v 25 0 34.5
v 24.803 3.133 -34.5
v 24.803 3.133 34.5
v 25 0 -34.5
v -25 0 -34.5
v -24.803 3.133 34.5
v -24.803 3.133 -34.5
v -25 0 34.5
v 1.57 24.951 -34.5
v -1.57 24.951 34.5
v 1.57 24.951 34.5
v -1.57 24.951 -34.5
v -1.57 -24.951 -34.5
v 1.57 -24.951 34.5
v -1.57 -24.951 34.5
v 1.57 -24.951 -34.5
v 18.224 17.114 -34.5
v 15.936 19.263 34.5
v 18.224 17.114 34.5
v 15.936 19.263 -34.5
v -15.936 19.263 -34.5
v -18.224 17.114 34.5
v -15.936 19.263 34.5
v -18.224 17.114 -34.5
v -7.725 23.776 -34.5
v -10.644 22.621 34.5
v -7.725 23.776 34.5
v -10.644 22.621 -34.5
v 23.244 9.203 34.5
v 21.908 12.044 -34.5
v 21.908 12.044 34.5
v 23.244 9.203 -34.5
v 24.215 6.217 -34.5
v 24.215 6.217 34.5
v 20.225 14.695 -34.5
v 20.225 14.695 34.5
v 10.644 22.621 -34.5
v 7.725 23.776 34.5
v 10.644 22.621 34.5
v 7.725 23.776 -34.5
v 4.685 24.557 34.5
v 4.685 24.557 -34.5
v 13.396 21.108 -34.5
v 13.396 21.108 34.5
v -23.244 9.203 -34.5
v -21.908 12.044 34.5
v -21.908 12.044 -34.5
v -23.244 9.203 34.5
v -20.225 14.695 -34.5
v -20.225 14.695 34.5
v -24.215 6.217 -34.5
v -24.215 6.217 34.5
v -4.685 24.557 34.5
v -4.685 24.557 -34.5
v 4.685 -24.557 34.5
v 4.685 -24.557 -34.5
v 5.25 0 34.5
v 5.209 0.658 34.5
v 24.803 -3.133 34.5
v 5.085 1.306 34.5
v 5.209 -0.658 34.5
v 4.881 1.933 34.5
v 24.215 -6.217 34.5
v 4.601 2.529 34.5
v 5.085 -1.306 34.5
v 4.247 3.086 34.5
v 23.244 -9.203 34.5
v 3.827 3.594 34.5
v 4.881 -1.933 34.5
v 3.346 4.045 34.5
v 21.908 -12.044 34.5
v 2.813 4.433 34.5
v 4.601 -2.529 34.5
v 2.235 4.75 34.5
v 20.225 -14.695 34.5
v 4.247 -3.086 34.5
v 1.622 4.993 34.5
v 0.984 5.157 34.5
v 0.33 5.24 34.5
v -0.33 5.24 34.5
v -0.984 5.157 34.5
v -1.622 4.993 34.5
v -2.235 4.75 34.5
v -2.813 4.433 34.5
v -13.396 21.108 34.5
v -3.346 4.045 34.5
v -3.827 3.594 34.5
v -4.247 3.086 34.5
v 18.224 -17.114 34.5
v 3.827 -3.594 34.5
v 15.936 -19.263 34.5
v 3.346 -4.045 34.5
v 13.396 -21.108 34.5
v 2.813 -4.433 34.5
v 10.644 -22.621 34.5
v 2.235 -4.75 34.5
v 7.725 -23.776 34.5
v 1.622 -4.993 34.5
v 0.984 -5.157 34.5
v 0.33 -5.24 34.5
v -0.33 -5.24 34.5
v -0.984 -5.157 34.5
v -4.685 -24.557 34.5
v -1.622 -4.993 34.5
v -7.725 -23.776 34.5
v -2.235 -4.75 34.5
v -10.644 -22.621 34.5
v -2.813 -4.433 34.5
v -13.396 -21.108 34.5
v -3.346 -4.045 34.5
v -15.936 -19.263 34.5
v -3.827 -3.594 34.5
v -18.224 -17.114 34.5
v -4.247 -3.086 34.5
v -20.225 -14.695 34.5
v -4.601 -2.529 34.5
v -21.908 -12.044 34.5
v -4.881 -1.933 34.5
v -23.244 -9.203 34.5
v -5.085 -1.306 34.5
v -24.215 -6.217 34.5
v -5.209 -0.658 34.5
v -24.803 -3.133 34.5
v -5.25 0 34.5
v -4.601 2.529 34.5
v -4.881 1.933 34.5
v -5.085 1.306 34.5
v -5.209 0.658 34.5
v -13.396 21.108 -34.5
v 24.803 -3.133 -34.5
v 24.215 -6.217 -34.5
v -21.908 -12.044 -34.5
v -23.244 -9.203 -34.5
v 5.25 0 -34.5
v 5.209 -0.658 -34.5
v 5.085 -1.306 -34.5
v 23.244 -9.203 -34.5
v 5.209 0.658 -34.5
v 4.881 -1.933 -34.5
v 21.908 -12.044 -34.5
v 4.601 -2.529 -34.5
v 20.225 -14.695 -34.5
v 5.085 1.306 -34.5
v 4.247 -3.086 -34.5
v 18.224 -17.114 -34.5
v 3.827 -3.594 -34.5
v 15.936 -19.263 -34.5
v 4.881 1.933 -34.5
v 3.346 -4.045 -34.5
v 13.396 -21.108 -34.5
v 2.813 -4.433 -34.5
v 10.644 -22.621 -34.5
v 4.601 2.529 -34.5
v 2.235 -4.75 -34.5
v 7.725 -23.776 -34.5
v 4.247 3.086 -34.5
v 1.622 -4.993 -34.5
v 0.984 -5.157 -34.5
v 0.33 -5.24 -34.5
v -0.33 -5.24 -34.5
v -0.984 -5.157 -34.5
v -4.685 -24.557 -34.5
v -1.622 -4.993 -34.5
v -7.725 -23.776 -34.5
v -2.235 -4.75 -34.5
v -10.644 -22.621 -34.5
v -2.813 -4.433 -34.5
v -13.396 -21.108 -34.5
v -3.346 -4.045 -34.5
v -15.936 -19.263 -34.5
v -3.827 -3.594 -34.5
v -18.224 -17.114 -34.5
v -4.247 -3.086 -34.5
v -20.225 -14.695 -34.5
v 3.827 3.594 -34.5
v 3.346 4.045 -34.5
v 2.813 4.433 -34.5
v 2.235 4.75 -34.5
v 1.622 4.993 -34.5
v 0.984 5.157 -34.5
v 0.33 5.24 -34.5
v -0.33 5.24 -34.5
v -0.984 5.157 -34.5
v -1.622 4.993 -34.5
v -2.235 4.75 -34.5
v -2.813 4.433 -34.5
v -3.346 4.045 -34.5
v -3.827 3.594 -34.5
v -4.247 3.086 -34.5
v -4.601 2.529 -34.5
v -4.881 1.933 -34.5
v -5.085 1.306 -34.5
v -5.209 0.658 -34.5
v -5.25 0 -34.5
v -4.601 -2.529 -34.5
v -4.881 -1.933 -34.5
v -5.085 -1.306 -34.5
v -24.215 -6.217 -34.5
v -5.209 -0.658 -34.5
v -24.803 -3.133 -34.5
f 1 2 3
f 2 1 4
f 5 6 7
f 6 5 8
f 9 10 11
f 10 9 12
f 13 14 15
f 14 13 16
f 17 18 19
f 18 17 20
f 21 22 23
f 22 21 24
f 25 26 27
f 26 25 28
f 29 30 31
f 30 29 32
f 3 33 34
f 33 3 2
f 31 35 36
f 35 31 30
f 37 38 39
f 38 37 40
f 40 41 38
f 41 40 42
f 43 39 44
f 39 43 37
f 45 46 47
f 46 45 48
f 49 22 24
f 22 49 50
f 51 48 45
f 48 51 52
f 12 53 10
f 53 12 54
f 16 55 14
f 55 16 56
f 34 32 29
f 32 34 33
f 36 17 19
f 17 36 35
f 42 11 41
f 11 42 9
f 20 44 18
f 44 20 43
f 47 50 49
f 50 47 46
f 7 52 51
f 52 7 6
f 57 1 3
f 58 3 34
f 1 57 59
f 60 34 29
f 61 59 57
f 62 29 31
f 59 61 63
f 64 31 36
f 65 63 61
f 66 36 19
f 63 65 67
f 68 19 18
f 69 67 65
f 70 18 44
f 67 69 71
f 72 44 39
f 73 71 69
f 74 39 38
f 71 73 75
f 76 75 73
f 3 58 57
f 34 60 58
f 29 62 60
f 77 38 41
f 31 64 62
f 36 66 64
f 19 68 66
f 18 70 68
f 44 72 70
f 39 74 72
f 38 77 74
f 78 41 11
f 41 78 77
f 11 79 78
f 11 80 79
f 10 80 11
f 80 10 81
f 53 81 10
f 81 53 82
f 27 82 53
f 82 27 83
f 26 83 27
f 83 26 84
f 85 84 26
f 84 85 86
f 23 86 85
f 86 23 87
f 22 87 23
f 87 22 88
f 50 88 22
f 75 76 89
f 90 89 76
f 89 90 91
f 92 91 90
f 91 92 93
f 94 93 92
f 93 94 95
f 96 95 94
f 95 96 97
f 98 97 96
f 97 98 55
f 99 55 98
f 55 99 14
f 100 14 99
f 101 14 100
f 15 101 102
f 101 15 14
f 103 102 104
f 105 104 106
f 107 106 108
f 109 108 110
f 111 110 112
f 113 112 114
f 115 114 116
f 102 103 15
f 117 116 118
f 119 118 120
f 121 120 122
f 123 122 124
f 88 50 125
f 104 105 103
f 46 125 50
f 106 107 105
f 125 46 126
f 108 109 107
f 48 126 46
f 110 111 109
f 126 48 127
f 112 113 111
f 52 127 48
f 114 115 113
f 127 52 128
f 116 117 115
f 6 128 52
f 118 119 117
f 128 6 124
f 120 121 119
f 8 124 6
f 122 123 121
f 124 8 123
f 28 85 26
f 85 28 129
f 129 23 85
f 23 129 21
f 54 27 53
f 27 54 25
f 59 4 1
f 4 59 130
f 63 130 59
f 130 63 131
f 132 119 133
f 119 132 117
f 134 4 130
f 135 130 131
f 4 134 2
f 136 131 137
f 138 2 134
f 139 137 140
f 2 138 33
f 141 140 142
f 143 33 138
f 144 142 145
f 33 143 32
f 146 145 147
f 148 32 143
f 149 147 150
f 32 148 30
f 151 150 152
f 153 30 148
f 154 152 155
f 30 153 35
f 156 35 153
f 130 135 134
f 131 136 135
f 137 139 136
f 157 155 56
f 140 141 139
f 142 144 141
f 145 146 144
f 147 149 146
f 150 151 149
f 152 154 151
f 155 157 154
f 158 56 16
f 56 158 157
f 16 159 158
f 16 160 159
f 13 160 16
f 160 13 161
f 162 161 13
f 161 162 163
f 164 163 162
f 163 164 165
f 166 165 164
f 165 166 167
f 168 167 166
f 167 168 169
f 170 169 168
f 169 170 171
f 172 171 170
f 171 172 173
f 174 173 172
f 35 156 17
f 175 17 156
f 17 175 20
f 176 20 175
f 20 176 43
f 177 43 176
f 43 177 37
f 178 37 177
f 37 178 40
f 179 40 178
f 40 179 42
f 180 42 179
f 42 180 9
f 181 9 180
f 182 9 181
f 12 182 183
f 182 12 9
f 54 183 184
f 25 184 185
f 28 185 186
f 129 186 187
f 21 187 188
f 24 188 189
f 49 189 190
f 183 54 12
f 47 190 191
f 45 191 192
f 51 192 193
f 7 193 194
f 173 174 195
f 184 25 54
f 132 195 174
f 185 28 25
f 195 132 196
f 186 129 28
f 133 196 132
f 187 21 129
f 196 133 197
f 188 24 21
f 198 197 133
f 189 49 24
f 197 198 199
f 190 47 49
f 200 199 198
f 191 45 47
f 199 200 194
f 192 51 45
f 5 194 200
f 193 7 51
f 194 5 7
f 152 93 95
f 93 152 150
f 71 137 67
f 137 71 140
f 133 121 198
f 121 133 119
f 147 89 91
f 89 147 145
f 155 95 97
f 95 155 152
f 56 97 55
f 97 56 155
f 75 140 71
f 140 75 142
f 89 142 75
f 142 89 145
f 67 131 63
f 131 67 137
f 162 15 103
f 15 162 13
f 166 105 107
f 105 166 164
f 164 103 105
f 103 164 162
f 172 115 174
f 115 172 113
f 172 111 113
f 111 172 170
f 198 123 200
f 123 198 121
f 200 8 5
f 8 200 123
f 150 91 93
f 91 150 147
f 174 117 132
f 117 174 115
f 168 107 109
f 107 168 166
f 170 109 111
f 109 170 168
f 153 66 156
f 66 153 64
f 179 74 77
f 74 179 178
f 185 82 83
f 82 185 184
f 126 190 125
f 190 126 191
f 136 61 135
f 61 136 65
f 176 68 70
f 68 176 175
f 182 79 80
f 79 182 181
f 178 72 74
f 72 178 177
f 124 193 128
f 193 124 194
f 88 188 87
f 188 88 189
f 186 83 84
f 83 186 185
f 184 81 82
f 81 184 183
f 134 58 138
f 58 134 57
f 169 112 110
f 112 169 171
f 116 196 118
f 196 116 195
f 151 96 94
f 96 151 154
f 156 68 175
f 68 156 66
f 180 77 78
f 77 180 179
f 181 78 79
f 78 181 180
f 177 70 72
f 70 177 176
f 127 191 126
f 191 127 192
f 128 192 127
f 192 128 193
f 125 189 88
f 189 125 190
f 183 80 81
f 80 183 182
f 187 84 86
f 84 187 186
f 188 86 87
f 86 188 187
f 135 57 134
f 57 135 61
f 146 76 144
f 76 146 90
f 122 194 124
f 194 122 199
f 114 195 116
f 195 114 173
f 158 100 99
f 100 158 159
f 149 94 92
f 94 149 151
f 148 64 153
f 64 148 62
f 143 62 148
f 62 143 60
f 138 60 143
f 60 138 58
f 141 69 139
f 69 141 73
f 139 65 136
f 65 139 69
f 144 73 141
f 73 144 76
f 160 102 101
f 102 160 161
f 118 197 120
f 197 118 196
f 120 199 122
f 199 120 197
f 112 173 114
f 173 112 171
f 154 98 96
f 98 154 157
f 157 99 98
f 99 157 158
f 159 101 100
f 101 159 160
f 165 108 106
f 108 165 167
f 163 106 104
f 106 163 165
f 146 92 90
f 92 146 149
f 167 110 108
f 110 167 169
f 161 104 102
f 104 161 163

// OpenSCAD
$fn = 50;


difference() {
	union() {
		translate(v = [0, 0, -34.5000000000]) {
			cylinder(h = 69, r = 25.0000000000);
		}
	}
	union() {
		translate(v = [0, 0, -100.0000000000]) {
			cylinder(h = 200, r = 5.2500000000);
		}
	}
}
